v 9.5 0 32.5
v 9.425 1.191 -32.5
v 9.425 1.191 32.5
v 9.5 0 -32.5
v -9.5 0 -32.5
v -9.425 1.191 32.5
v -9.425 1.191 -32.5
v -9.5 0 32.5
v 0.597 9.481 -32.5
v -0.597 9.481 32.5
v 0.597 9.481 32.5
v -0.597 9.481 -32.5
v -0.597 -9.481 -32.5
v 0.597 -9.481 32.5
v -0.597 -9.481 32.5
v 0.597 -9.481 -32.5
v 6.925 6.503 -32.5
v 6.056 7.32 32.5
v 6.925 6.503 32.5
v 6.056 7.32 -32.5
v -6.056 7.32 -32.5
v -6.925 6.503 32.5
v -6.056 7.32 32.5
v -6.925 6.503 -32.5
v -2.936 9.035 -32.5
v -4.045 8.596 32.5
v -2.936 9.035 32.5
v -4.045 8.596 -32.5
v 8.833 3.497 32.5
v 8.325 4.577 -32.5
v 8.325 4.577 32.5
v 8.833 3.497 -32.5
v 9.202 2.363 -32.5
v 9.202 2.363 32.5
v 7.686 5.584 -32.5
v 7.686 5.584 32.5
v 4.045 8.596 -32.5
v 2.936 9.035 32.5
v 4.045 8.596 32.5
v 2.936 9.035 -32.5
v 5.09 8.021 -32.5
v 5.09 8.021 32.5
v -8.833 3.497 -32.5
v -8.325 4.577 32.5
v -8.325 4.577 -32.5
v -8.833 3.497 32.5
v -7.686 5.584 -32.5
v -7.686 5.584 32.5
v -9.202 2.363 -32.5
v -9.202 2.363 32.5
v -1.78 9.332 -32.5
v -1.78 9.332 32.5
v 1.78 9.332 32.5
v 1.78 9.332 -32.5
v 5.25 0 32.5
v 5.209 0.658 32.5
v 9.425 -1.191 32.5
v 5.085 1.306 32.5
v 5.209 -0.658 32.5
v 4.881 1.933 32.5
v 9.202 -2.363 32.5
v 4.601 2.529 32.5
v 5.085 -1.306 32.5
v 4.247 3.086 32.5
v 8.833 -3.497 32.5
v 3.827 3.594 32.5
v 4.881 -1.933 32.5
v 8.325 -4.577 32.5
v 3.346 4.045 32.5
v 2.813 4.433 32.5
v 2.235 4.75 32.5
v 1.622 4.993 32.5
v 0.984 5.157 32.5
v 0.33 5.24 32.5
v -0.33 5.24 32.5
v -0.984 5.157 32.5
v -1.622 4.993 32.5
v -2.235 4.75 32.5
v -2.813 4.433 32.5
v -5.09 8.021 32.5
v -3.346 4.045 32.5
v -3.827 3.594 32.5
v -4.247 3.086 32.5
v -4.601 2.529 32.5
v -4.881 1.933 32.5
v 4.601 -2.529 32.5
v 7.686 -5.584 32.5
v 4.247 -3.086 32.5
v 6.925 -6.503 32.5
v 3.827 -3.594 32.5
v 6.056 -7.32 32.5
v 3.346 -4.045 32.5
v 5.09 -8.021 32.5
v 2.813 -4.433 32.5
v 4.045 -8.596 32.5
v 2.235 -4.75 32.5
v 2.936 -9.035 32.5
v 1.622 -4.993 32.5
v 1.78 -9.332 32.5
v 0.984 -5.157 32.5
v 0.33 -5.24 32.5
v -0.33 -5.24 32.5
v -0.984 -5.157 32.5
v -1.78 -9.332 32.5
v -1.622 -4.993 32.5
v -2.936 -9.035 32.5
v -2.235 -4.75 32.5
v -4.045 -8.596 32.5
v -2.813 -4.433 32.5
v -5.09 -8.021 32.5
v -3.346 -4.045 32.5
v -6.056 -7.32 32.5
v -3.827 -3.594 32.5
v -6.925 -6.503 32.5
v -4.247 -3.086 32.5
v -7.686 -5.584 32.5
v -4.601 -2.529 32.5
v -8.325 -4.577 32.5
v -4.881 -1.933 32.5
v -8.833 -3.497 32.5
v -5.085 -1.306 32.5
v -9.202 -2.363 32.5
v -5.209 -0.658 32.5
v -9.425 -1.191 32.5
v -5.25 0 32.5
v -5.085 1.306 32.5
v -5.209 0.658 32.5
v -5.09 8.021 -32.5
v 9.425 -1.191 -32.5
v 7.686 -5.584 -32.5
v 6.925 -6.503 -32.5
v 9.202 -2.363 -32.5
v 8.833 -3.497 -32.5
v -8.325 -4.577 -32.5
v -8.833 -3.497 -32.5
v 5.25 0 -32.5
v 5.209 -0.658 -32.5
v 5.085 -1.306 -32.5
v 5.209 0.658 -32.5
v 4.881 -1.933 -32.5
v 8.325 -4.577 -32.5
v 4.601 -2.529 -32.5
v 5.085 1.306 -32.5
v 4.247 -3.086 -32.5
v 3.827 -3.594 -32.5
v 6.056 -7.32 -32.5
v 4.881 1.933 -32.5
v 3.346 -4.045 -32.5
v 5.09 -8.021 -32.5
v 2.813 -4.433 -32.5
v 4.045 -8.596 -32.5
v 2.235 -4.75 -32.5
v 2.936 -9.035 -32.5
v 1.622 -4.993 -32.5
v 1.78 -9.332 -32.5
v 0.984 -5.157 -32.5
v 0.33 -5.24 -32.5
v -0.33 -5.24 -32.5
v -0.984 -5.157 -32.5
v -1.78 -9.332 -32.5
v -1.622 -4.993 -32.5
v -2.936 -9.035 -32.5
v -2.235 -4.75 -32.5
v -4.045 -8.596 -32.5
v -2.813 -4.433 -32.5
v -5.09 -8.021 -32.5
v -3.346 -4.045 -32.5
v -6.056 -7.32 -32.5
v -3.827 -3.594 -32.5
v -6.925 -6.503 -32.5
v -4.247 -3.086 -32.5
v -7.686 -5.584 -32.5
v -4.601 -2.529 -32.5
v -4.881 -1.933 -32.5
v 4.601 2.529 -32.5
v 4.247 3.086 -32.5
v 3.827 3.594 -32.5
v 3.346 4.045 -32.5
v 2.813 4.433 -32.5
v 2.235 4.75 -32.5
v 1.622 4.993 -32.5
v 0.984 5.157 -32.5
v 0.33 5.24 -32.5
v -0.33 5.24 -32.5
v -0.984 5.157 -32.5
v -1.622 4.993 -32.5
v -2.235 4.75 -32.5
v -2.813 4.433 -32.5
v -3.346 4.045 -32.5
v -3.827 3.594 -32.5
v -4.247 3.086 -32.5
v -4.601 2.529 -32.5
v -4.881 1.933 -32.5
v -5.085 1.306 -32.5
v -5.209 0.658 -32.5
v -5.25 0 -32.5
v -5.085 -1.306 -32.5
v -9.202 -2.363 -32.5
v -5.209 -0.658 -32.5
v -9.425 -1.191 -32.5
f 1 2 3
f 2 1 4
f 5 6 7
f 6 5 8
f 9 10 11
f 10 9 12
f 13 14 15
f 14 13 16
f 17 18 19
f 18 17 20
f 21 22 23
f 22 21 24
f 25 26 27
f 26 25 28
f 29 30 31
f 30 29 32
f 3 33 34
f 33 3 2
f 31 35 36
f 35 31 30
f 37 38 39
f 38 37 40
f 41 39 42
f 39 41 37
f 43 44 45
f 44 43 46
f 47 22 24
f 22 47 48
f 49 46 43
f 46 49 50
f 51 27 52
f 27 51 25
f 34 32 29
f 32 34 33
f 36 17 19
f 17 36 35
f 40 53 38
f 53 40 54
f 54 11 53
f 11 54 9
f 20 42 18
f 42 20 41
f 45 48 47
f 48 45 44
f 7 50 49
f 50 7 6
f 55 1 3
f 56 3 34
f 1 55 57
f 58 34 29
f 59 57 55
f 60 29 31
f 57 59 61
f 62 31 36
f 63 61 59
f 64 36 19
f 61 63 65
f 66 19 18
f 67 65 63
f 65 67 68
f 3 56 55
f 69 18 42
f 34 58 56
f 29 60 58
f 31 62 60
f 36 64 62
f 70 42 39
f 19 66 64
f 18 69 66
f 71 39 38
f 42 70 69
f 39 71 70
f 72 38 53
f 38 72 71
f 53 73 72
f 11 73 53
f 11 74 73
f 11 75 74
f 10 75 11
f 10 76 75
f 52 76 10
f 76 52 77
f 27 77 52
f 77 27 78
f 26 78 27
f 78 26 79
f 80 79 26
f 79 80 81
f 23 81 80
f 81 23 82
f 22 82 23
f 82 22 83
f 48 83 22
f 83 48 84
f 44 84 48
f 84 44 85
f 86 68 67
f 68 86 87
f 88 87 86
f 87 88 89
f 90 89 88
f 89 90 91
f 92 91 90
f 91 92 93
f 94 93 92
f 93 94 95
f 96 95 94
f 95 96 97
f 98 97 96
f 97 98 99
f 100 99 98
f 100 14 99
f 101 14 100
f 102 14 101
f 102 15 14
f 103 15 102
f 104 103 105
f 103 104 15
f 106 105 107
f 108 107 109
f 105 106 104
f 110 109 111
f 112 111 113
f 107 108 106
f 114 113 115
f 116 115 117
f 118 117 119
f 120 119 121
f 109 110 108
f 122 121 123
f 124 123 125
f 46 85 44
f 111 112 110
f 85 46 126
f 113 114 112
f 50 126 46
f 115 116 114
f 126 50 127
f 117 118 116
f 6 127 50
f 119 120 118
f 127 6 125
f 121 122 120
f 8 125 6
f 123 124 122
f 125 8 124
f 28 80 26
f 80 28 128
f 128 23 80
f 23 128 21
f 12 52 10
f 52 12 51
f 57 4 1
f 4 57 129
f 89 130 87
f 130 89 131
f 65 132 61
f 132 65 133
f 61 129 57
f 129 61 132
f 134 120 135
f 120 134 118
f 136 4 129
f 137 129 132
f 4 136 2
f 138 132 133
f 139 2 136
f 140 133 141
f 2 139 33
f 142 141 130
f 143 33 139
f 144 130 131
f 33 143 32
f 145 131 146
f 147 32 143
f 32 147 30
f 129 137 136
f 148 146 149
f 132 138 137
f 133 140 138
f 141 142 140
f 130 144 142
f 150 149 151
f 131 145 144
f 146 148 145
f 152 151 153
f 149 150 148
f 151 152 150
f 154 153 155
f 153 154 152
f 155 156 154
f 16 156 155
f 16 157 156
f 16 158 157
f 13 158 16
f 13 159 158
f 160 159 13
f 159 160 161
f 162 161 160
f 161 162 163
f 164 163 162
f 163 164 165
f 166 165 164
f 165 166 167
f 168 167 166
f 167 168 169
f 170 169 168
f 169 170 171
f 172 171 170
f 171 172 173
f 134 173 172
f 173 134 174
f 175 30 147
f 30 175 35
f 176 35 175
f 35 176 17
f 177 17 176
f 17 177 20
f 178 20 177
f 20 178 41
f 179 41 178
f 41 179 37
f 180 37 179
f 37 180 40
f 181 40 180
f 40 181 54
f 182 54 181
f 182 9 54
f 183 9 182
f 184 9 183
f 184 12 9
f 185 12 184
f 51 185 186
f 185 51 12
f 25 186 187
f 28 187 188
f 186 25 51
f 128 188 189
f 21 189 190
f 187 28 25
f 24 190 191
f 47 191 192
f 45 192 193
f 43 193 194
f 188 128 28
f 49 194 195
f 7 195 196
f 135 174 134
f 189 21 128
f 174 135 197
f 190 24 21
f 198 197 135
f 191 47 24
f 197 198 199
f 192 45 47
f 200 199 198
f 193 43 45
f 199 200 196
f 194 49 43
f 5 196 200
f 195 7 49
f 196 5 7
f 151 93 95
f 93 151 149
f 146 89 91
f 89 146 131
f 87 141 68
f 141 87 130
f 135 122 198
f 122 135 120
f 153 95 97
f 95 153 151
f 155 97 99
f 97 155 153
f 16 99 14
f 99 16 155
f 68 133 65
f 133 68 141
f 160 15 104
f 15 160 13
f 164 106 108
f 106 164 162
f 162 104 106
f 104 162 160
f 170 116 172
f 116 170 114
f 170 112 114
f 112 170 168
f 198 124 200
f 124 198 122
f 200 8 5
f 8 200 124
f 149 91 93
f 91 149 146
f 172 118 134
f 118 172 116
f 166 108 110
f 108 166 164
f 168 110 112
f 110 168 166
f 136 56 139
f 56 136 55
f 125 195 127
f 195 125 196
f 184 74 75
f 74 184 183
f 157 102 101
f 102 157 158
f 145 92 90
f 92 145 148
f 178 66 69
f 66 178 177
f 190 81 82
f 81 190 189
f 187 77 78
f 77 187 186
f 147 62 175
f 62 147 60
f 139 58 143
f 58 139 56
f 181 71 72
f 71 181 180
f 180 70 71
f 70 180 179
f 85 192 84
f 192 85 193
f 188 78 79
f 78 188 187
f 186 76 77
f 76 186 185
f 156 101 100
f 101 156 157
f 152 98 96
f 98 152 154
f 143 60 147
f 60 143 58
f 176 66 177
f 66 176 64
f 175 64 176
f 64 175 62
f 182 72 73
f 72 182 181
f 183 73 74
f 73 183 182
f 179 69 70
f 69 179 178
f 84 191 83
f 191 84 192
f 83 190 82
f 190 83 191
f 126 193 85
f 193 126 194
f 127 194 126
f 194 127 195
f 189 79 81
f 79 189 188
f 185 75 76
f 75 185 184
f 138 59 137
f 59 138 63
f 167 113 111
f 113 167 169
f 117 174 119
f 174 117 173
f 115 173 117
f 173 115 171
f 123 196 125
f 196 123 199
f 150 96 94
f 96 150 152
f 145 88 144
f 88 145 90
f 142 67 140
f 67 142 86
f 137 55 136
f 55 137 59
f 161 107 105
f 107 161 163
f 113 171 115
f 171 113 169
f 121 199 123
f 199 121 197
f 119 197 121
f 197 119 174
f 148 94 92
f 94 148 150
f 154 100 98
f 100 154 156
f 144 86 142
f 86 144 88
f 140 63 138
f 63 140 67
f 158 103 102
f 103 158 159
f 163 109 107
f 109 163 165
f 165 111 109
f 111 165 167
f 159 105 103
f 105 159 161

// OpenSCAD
$fn = 50;


difference() {
	union() {
		translate(v = [0, 0, -32.5000000000]) {
			cylinder(h = 65, r = 9.5000000000);
		}
	}
	union() {
		translate(v = [0, 0, -100.0000000000]) {
			cylinder(h = 200, r = 5.2500000000);
		}
	}
}
